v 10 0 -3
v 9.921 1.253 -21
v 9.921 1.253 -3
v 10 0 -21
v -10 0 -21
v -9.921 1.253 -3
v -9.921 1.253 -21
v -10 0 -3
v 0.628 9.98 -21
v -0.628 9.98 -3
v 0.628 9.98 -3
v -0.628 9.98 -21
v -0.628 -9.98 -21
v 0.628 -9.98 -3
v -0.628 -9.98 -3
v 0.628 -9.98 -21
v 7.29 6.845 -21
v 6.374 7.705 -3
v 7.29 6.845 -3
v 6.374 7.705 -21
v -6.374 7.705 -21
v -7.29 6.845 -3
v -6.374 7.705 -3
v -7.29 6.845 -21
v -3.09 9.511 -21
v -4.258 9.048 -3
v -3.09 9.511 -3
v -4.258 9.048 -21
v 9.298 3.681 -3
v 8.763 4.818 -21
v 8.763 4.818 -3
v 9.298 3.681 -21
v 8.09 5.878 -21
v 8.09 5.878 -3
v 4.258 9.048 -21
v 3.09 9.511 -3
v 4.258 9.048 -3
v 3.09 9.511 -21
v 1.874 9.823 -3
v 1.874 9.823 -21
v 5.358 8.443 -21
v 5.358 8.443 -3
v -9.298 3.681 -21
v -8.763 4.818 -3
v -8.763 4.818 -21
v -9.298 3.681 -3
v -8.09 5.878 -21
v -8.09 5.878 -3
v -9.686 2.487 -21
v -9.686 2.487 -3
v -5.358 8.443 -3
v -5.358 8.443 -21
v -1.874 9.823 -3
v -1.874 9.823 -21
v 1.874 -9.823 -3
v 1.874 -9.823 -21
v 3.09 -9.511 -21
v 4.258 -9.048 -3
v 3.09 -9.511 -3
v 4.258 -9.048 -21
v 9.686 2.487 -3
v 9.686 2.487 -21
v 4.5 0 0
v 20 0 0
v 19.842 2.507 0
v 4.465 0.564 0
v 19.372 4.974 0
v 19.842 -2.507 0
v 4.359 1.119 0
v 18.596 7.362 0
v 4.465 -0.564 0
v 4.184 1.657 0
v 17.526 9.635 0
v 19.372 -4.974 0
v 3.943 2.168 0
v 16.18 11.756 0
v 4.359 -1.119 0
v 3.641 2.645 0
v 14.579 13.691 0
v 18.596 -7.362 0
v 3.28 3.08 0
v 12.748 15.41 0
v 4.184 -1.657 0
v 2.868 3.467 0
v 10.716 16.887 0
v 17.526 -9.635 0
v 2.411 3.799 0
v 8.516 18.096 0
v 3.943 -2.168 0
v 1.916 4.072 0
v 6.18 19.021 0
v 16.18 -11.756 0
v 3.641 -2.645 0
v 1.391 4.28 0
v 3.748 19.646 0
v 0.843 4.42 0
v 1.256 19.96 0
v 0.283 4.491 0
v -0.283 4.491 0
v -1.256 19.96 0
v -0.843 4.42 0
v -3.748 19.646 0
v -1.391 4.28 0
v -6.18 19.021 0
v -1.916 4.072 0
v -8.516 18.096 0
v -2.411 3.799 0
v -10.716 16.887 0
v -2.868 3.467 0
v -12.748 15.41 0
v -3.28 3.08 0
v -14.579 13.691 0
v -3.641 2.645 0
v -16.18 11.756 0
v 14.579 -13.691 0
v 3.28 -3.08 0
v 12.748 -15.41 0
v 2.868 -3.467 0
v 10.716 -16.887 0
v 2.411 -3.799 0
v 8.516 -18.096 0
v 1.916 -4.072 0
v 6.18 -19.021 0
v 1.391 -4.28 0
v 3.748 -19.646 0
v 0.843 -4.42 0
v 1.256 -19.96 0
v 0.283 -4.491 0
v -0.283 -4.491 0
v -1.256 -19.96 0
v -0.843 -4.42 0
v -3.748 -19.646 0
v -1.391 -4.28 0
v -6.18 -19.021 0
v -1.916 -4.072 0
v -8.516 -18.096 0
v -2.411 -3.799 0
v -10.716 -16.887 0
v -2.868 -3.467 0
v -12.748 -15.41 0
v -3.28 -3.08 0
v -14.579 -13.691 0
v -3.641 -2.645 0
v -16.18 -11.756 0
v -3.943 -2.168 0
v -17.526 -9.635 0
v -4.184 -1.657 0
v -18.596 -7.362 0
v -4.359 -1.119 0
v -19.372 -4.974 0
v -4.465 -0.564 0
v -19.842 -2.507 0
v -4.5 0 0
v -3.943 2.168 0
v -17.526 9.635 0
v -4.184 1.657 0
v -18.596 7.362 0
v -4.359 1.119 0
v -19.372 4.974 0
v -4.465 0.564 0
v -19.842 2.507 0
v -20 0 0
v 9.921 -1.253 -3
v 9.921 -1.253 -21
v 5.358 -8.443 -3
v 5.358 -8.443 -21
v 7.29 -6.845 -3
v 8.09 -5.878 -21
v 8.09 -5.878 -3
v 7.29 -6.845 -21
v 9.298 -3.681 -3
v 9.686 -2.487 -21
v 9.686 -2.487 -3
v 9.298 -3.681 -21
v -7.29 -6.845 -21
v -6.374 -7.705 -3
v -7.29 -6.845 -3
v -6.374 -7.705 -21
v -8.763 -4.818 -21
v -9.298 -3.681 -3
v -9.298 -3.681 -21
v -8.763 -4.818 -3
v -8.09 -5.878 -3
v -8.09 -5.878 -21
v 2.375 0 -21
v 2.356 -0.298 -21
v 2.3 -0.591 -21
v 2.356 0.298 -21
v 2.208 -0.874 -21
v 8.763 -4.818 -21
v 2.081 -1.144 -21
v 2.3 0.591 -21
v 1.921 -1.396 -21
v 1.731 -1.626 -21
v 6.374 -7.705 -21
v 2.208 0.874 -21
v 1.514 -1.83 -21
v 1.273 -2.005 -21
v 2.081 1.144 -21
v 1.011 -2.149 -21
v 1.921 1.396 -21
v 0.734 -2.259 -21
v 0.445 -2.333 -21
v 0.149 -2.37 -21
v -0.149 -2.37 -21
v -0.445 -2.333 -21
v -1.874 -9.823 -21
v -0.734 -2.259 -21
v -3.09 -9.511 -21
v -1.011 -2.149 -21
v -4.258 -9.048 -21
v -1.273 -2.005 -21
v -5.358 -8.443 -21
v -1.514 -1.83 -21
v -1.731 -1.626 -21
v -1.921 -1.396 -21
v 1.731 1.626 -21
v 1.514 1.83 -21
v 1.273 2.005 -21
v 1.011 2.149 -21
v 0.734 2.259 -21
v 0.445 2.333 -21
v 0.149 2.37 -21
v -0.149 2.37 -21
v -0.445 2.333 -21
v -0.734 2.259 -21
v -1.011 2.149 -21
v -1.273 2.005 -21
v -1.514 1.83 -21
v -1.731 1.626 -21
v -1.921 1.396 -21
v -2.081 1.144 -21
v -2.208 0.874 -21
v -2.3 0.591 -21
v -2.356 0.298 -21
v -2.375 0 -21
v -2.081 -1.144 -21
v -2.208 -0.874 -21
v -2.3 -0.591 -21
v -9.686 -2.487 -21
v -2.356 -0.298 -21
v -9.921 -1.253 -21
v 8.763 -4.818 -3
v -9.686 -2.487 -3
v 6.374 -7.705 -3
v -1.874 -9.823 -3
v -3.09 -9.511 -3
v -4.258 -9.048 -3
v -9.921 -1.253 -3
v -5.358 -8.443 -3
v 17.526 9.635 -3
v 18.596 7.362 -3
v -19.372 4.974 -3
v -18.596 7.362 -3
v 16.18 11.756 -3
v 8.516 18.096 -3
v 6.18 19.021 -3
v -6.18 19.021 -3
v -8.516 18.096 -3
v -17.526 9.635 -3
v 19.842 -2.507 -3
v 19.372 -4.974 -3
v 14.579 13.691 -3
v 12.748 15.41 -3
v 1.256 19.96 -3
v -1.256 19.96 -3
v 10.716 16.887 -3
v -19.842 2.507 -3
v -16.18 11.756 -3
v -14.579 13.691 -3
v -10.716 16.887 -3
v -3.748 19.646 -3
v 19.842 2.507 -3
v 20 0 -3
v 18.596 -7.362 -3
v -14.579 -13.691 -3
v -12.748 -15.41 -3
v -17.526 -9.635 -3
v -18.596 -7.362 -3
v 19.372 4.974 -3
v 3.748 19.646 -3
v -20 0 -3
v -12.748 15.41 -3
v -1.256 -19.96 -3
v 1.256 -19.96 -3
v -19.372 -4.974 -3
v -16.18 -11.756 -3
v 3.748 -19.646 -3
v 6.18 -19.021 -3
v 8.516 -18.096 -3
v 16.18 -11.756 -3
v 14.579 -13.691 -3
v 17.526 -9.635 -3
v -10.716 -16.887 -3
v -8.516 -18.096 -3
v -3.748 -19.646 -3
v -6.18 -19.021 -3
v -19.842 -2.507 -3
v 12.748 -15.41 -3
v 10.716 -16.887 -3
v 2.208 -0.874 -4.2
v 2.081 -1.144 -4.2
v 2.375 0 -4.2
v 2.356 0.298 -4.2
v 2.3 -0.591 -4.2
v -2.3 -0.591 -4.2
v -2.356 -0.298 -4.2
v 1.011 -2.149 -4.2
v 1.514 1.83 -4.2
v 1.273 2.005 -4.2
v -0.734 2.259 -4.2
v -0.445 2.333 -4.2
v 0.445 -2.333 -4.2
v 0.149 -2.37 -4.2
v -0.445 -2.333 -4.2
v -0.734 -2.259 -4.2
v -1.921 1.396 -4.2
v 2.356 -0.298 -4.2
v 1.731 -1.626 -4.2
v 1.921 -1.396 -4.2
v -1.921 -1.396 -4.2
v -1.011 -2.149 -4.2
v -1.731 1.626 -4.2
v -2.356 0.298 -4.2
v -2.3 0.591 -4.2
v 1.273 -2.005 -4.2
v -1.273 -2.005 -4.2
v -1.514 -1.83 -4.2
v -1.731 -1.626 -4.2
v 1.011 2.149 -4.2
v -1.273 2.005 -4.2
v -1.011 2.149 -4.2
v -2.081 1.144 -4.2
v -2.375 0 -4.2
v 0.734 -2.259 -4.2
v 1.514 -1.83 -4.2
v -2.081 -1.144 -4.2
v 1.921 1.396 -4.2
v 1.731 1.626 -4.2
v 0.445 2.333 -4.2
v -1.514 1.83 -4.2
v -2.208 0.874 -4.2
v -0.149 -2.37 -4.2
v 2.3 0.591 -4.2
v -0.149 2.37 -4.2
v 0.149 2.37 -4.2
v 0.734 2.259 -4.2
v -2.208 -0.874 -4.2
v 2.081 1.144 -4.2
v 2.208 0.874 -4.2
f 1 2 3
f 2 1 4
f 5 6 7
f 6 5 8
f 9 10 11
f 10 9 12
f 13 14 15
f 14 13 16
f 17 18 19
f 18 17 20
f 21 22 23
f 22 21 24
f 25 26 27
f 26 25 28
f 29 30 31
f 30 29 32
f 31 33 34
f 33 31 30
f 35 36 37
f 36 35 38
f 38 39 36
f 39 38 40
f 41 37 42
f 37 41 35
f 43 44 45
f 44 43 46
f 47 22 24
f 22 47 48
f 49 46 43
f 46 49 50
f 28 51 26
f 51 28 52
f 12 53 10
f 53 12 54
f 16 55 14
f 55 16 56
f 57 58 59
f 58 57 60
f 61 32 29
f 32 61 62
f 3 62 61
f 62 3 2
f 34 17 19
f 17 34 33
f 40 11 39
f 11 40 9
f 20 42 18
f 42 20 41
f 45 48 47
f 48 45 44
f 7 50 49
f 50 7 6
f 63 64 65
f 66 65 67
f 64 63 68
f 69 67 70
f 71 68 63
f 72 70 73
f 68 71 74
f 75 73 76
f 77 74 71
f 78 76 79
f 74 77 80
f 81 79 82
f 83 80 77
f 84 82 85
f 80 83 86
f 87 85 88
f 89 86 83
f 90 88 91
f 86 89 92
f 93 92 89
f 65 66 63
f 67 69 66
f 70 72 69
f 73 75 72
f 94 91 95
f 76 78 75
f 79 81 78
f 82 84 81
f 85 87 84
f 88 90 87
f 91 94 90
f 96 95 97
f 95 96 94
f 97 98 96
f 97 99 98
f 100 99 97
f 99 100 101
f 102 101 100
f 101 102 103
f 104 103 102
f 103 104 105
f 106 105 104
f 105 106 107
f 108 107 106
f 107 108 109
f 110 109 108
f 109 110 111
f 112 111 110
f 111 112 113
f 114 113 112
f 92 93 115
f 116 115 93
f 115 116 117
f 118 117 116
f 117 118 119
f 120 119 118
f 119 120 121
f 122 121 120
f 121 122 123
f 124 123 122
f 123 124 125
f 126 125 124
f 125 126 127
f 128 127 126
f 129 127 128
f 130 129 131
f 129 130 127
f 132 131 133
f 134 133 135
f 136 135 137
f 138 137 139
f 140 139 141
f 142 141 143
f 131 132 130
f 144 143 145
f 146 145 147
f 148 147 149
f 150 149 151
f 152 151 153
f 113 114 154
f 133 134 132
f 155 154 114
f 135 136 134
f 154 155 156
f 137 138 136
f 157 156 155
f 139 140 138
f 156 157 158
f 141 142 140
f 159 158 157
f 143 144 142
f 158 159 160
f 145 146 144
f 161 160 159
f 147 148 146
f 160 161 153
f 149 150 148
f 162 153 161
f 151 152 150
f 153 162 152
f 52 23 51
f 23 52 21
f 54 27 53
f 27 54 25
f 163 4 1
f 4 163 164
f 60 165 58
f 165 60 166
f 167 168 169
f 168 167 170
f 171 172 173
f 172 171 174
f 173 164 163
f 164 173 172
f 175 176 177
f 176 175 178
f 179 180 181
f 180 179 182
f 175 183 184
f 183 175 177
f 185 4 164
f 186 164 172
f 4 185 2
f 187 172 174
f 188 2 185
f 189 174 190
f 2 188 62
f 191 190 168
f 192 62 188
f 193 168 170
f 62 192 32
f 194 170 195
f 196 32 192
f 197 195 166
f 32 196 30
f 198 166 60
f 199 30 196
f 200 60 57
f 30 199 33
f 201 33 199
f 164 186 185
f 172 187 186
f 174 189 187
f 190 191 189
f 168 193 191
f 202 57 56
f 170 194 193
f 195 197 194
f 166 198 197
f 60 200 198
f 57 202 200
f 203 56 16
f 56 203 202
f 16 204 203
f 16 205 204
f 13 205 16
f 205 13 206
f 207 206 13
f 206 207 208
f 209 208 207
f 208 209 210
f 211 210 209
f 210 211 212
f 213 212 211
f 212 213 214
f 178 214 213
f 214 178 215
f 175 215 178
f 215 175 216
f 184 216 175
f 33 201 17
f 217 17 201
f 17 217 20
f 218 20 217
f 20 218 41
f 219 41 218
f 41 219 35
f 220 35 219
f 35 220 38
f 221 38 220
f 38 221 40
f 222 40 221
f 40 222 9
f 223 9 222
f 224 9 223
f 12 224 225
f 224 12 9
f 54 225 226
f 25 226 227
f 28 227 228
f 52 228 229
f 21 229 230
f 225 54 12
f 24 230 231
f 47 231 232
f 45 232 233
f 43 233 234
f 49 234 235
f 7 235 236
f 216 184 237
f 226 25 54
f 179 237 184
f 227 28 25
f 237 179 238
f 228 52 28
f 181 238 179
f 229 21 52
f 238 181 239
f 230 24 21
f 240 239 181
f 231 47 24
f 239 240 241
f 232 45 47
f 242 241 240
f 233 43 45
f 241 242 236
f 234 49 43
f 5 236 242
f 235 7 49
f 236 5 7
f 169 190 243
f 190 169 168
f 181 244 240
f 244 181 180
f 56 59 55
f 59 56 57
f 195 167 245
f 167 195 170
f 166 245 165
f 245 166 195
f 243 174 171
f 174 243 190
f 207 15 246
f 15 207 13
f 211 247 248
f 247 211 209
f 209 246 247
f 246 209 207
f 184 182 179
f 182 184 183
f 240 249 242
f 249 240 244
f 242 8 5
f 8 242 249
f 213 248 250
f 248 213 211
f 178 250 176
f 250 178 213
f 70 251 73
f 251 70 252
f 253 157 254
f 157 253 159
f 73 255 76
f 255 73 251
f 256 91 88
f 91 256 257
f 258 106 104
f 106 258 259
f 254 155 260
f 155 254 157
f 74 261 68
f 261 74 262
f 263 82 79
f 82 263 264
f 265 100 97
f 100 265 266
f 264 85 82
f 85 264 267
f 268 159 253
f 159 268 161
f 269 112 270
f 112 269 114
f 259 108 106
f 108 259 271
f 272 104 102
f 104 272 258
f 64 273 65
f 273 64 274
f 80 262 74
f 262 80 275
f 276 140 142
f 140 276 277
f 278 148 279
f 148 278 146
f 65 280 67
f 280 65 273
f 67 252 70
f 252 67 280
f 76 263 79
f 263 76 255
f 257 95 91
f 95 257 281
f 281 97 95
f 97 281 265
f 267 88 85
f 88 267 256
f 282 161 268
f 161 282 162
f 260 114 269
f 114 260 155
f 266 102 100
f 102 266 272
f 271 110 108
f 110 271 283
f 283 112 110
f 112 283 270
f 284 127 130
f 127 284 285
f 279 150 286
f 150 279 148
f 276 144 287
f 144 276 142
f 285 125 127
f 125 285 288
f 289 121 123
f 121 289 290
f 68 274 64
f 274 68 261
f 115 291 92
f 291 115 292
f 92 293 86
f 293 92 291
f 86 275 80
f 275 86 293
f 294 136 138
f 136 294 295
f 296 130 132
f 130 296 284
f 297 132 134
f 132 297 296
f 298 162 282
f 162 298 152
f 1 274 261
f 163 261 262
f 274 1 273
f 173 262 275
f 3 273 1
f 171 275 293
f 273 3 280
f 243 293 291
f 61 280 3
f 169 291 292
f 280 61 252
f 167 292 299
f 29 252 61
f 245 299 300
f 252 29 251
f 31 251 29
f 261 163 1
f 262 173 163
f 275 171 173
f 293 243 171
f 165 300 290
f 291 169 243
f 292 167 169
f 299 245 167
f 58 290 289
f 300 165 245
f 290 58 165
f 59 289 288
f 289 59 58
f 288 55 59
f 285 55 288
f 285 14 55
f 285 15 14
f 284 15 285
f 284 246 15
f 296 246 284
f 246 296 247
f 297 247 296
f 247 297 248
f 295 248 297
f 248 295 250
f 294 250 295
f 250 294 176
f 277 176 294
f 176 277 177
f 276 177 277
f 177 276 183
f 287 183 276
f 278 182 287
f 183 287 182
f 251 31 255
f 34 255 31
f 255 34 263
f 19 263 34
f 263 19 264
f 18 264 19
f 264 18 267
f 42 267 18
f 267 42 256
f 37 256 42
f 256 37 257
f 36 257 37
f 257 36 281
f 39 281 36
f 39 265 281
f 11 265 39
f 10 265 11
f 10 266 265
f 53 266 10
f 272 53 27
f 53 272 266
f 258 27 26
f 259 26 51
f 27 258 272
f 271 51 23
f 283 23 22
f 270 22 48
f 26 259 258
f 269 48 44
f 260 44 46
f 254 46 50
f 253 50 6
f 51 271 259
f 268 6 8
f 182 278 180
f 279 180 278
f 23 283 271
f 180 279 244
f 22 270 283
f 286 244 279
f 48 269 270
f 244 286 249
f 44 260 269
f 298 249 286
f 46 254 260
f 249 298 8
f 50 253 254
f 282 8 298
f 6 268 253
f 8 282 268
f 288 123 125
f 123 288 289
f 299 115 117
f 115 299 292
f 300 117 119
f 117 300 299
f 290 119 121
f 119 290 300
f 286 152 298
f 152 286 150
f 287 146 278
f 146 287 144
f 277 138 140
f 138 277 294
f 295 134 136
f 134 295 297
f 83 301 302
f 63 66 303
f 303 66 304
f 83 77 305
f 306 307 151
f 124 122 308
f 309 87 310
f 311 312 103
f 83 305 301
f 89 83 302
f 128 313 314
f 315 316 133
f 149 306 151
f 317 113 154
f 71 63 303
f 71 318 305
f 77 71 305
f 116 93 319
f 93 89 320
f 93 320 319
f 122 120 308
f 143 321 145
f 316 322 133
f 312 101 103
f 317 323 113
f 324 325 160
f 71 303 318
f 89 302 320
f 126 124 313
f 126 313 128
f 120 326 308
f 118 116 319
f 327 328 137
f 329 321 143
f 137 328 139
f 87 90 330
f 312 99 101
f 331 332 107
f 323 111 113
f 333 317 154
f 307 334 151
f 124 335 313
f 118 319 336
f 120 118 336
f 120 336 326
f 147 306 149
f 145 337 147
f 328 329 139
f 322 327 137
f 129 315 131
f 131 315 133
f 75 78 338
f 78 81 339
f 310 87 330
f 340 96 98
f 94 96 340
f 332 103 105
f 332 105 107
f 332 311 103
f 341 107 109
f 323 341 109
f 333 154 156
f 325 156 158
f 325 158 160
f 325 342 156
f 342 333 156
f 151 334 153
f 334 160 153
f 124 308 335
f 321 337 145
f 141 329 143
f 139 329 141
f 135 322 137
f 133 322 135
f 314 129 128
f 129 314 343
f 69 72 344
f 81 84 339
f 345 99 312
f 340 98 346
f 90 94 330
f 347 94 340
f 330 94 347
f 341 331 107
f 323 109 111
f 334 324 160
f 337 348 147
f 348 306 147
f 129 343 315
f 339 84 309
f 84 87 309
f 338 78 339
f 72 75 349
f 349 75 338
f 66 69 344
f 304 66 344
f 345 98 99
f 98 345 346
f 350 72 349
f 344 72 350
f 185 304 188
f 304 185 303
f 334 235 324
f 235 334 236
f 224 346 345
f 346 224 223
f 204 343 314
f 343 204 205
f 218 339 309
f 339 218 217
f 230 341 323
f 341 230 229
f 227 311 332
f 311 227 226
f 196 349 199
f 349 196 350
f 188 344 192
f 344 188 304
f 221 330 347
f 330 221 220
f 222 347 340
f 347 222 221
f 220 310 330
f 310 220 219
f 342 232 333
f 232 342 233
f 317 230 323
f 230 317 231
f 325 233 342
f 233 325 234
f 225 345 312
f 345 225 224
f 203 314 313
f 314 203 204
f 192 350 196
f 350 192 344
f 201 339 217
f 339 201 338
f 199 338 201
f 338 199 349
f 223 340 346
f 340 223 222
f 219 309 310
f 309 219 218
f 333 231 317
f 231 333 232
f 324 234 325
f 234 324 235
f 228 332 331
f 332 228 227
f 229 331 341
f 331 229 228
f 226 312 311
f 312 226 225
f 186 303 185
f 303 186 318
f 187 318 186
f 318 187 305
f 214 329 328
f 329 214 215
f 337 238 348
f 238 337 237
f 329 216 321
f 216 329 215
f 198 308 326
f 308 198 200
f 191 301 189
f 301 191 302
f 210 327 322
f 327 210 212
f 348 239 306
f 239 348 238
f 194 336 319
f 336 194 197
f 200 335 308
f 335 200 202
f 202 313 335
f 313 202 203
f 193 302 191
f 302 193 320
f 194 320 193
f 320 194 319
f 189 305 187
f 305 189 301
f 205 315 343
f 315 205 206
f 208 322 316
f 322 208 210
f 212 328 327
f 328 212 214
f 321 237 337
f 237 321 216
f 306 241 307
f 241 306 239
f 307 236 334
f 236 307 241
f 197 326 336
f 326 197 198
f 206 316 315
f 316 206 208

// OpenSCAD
$fn = 50;


difference() {
	union() {
		translate(v = [0, 0, -21.0000000000]) {
			cylinder(h = 21, r = 10.0000000000);
		}
		translate(v = [0, 0, -3.0000000000]) {
			cylinder(h = 3, r = 20.0000000000);
		}
	}
	union() {
		translate(v = [0, 0, 0]) {
			rotate(a = [0, 0, 0]) {
				difference() {
					union() {
						#translate(v = [0, 0, -21.0000000000]) {
							cylinder(h = 21, r = 2.2500000000);
						}
						#translate(v = [0, 0, -4.2000000000]) {
							cylinder(h = 4.2000000000, r1 = 2.3750000000, r2 = 4.5000000000);
						}
						#translate(v = [0, 0, -21.0000000000]) {
							cylinder(h = 21, r = 2.3750000000);
						}
						#translate(v = [0, 0, -21.0000000000]) {
							cylinder(h = 21, r = 2.2500000000);
						}
					}
					union();
				}
			}
		}
	}
}
